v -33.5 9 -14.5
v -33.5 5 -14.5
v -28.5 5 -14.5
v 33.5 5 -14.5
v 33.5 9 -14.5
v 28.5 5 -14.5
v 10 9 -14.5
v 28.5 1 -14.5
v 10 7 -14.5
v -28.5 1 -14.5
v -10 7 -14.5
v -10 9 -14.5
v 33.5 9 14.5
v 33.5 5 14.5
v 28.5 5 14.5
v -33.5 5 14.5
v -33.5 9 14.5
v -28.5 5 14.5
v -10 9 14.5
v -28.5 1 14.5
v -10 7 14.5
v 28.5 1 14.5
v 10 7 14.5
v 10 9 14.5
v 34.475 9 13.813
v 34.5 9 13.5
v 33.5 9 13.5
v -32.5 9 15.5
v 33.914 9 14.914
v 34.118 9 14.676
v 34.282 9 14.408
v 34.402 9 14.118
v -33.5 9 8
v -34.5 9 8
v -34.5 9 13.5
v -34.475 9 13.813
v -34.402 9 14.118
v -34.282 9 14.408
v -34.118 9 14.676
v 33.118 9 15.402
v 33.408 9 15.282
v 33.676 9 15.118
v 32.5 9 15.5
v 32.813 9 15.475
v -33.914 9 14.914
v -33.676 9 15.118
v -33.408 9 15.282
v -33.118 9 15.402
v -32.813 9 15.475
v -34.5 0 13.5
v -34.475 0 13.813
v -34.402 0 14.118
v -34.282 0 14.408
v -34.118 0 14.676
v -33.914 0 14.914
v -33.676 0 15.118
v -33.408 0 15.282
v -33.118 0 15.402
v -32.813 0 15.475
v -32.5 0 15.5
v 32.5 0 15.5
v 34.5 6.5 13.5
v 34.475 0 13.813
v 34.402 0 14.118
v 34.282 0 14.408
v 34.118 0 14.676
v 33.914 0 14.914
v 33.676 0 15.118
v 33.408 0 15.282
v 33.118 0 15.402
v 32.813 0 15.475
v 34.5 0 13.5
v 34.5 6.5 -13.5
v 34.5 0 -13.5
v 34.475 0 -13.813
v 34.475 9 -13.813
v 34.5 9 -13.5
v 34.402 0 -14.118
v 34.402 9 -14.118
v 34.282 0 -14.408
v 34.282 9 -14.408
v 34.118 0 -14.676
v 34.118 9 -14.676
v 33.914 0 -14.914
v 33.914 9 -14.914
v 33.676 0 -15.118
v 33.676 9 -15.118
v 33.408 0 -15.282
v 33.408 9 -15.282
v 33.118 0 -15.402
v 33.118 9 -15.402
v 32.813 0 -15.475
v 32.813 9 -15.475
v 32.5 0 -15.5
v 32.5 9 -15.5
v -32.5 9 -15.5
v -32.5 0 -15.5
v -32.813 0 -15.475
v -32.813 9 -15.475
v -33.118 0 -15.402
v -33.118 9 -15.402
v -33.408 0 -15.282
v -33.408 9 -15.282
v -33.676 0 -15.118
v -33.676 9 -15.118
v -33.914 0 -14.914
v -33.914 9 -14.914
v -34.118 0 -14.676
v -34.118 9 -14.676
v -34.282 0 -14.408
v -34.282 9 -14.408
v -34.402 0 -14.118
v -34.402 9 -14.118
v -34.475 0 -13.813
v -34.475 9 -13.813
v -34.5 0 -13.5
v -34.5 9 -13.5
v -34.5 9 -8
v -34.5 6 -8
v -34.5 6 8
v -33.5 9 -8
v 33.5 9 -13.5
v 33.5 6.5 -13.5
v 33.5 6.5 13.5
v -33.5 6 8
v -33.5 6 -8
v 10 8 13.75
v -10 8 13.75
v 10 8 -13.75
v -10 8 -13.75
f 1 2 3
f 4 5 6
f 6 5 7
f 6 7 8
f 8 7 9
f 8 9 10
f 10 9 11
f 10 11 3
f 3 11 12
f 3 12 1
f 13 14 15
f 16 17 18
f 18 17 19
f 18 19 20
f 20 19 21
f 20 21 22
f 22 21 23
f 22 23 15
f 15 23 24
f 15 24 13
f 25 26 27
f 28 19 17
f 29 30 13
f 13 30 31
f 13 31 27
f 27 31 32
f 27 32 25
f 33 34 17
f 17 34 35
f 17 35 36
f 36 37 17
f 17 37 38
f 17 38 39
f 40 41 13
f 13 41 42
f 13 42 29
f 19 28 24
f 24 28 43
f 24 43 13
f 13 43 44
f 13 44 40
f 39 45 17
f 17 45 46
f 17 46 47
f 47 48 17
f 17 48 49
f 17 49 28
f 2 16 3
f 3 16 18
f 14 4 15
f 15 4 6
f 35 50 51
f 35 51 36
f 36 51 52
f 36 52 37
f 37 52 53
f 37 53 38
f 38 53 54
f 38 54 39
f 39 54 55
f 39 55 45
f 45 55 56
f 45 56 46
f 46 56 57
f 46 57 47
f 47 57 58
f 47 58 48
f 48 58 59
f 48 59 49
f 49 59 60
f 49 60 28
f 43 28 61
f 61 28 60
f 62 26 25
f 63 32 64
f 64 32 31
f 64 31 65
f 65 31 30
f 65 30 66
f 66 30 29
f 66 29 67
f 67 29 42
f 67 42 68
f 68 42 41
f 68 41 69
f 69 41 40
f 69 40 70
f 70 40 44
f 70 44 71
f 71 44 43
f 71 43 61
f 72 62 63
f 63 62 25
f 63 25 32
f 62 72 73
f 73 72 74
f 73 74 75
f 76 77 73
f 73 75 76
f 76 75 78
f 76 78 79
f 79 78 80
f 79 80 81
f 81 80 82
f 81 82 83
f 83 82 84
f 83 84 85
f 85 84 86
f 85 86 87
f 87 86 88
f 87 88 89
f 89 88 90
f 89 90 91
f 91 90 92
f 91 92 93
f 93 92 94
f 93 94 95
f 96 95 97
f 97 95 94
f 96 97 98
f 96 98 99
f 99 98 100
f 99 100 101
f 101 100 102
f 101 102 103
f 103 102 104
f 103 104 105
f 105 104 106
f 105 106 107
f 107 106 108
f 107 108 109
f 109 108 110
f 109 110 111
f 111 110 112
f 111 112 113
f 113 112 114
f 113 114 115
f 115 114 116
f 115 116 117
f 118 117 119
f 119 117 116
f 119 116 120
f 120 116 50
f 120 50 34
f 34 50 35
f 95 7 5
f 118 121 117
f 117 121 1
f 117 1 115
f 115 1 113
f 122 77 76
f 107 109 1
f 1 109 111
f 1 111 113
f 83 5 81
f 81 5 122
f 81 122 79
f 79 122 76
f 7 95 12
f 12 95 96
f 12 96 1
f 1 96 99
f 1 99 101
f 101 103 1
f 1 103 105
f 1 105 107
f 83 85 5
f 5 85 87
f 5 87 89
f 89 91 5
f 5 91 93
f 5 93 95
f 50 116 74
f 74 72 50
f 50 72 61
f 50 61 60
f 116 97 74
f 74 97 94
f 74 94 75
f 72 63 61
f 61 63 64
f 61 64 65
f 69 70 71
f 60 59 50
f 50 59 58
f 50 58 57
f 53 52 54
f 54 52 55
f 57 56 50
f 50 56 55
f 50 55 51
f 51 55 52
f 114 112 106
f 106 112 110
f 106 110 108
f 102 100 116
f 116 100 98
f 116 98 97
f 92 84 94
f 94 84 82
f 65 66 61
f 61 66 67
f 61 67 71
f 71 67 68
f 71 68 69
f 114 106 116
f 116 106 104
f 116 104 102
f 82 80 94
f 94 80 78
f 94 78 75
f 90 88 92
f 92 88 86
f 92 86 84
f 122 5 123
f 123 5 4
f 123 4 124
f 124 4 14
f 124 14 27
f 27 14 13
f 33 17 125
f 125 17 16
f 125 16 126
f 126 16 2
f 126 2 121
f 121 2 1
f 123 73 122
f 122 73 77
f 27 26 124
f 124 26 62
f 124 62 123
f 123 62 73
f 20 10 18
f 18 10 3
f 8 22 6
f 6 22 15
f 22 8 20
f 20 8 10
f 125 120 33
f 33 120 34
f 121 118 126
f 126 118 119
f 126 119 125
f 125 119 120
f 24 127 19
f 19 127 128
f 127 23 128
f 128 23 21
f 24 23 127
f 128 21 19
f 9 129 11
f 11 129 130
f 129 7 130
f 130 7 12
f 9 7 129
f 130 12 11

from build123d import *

# Parameters (mm, degrees)
BOSS_EXTRUDE1_DEPTH = 9
SKETCH4_W           = 67
SKETCH4_H           = 29
CUT_EXTRUDE1_DEPTH  = 4
SKETCH7_W           = 27
SKETCH7_H           = 2.5
CUT_EXTRUDE2_DEPTH  = 19
SKETCH9_W           = 57
SKETCH9_H           = 29
CUT_EXTRUDE3_DEPTH  = 4
SKETCH10_W          = 16
SKETCH10_H          = 3
CUT_EXTRUDE4_DEPTH  = 4
BOSS_EXTRUDE4_DEPTH = 10


with BuildPart() as part:
    # Sketch1 → Boss-Extrude1 (new body)
    with BuildSketch(Plane(origin=(0, 0, 0), x_dir=(1, 0, 0), z_dir=(0, 1, 0))):
        with BuildLine():
            Line((-32.5, -15.5), (32.5, -15.5))
            ThreePointArc((32.5, -15.5), (33.914213562, -14.914213562), (34.5, -13.5))
            Line((34.5, -13.5), (34.5, 13.5))
            ThreePointArc((34.5, 13.5), (33.914213562, 14.914213562), (32.5, 15.5))
            Line((32.5, 15.5), (-32.5, 15.5))
            ThreePointArc((-32.5, 15.5), (-33.914213562, 14.914213562), (-34.5, 13.5))
            Line((-34.5, 13.5), (-34.5, -13.5))
            ThreePointArc((-34.5, -13.5), (-33.914213562, -14.914213562), (-32.5, -15.5))
        make_face()
    extrude(amount=BOSS_EXTRUDE1_DEPTH)

    # Sketch4 → Cut-Extrude1 (cut)
    with BuildSketch(Plane(origin=(0, 9, 0), x_dir=(1, 0, 0), z_dir=(0, 1, 0))):
        Rectangle(SKETCH4_W, SKETCH4_H)
    extrude(amount=-CUT_EXTRUDE1_DEPTH, mode=Mode.SUBTRACT)

    # Sketch7 → Cut-Extrude2 (cut)
    with BuildSketch(Plane.ZY.offset(-33.5)):
        with Locations((0, 7.75)):
            Rectangle(SKETCH7_W, SKETCH7_H)
    extrude(amount=-CUT_EXTRUDE2_DEPTH, mode=Mode.SUBTRACT)

    # Sketch9 → Cut-Extrude3 (cut)
    with BuildSketch(Plane(origin=(0, 5, 0), x_dir=(1, 0, 0), z_dir=(0, 1, 0))):
        Rectangle(SKETCH9_W, SKETCH9_H)
    extrude(amount=-CUT_EXTRUDE3_DEPTH, mode=Mode.SUBTRACT)

    # Sketch10 → Cut-Extrude4 (cut)
    with BuildSketch(Plane(origin=(-33.5, 0, 0), x_dir=(0, 0, -1), z_dir=(1, 0, 0))):
        with Locations((0, 7.5)):
            Rectangle(SKETCH10_W, SKETCH10_H)
    extrude(amount=-CUT_EXTRUDE4_DEPTH, mode=Mode.SUBTRACT)

    # Sketch13 → Boss-Extrude4 (add, symmetric)
    with BuildSketch(Plane(origin=(0, 0, 0), x_dir=(0, 0, -1), z_dir=(1, 0, 0))):
        Polygon((14.5, 7), (14.5, 9), (13.75, 8), align=None)
        Polygon((-13.75, 8), (-14.5, 7), (-14.5, 9), align=None)
    extrude(amount=BOSS_EXTRUDE4_DEPTH, both=True)


solid = part.part
